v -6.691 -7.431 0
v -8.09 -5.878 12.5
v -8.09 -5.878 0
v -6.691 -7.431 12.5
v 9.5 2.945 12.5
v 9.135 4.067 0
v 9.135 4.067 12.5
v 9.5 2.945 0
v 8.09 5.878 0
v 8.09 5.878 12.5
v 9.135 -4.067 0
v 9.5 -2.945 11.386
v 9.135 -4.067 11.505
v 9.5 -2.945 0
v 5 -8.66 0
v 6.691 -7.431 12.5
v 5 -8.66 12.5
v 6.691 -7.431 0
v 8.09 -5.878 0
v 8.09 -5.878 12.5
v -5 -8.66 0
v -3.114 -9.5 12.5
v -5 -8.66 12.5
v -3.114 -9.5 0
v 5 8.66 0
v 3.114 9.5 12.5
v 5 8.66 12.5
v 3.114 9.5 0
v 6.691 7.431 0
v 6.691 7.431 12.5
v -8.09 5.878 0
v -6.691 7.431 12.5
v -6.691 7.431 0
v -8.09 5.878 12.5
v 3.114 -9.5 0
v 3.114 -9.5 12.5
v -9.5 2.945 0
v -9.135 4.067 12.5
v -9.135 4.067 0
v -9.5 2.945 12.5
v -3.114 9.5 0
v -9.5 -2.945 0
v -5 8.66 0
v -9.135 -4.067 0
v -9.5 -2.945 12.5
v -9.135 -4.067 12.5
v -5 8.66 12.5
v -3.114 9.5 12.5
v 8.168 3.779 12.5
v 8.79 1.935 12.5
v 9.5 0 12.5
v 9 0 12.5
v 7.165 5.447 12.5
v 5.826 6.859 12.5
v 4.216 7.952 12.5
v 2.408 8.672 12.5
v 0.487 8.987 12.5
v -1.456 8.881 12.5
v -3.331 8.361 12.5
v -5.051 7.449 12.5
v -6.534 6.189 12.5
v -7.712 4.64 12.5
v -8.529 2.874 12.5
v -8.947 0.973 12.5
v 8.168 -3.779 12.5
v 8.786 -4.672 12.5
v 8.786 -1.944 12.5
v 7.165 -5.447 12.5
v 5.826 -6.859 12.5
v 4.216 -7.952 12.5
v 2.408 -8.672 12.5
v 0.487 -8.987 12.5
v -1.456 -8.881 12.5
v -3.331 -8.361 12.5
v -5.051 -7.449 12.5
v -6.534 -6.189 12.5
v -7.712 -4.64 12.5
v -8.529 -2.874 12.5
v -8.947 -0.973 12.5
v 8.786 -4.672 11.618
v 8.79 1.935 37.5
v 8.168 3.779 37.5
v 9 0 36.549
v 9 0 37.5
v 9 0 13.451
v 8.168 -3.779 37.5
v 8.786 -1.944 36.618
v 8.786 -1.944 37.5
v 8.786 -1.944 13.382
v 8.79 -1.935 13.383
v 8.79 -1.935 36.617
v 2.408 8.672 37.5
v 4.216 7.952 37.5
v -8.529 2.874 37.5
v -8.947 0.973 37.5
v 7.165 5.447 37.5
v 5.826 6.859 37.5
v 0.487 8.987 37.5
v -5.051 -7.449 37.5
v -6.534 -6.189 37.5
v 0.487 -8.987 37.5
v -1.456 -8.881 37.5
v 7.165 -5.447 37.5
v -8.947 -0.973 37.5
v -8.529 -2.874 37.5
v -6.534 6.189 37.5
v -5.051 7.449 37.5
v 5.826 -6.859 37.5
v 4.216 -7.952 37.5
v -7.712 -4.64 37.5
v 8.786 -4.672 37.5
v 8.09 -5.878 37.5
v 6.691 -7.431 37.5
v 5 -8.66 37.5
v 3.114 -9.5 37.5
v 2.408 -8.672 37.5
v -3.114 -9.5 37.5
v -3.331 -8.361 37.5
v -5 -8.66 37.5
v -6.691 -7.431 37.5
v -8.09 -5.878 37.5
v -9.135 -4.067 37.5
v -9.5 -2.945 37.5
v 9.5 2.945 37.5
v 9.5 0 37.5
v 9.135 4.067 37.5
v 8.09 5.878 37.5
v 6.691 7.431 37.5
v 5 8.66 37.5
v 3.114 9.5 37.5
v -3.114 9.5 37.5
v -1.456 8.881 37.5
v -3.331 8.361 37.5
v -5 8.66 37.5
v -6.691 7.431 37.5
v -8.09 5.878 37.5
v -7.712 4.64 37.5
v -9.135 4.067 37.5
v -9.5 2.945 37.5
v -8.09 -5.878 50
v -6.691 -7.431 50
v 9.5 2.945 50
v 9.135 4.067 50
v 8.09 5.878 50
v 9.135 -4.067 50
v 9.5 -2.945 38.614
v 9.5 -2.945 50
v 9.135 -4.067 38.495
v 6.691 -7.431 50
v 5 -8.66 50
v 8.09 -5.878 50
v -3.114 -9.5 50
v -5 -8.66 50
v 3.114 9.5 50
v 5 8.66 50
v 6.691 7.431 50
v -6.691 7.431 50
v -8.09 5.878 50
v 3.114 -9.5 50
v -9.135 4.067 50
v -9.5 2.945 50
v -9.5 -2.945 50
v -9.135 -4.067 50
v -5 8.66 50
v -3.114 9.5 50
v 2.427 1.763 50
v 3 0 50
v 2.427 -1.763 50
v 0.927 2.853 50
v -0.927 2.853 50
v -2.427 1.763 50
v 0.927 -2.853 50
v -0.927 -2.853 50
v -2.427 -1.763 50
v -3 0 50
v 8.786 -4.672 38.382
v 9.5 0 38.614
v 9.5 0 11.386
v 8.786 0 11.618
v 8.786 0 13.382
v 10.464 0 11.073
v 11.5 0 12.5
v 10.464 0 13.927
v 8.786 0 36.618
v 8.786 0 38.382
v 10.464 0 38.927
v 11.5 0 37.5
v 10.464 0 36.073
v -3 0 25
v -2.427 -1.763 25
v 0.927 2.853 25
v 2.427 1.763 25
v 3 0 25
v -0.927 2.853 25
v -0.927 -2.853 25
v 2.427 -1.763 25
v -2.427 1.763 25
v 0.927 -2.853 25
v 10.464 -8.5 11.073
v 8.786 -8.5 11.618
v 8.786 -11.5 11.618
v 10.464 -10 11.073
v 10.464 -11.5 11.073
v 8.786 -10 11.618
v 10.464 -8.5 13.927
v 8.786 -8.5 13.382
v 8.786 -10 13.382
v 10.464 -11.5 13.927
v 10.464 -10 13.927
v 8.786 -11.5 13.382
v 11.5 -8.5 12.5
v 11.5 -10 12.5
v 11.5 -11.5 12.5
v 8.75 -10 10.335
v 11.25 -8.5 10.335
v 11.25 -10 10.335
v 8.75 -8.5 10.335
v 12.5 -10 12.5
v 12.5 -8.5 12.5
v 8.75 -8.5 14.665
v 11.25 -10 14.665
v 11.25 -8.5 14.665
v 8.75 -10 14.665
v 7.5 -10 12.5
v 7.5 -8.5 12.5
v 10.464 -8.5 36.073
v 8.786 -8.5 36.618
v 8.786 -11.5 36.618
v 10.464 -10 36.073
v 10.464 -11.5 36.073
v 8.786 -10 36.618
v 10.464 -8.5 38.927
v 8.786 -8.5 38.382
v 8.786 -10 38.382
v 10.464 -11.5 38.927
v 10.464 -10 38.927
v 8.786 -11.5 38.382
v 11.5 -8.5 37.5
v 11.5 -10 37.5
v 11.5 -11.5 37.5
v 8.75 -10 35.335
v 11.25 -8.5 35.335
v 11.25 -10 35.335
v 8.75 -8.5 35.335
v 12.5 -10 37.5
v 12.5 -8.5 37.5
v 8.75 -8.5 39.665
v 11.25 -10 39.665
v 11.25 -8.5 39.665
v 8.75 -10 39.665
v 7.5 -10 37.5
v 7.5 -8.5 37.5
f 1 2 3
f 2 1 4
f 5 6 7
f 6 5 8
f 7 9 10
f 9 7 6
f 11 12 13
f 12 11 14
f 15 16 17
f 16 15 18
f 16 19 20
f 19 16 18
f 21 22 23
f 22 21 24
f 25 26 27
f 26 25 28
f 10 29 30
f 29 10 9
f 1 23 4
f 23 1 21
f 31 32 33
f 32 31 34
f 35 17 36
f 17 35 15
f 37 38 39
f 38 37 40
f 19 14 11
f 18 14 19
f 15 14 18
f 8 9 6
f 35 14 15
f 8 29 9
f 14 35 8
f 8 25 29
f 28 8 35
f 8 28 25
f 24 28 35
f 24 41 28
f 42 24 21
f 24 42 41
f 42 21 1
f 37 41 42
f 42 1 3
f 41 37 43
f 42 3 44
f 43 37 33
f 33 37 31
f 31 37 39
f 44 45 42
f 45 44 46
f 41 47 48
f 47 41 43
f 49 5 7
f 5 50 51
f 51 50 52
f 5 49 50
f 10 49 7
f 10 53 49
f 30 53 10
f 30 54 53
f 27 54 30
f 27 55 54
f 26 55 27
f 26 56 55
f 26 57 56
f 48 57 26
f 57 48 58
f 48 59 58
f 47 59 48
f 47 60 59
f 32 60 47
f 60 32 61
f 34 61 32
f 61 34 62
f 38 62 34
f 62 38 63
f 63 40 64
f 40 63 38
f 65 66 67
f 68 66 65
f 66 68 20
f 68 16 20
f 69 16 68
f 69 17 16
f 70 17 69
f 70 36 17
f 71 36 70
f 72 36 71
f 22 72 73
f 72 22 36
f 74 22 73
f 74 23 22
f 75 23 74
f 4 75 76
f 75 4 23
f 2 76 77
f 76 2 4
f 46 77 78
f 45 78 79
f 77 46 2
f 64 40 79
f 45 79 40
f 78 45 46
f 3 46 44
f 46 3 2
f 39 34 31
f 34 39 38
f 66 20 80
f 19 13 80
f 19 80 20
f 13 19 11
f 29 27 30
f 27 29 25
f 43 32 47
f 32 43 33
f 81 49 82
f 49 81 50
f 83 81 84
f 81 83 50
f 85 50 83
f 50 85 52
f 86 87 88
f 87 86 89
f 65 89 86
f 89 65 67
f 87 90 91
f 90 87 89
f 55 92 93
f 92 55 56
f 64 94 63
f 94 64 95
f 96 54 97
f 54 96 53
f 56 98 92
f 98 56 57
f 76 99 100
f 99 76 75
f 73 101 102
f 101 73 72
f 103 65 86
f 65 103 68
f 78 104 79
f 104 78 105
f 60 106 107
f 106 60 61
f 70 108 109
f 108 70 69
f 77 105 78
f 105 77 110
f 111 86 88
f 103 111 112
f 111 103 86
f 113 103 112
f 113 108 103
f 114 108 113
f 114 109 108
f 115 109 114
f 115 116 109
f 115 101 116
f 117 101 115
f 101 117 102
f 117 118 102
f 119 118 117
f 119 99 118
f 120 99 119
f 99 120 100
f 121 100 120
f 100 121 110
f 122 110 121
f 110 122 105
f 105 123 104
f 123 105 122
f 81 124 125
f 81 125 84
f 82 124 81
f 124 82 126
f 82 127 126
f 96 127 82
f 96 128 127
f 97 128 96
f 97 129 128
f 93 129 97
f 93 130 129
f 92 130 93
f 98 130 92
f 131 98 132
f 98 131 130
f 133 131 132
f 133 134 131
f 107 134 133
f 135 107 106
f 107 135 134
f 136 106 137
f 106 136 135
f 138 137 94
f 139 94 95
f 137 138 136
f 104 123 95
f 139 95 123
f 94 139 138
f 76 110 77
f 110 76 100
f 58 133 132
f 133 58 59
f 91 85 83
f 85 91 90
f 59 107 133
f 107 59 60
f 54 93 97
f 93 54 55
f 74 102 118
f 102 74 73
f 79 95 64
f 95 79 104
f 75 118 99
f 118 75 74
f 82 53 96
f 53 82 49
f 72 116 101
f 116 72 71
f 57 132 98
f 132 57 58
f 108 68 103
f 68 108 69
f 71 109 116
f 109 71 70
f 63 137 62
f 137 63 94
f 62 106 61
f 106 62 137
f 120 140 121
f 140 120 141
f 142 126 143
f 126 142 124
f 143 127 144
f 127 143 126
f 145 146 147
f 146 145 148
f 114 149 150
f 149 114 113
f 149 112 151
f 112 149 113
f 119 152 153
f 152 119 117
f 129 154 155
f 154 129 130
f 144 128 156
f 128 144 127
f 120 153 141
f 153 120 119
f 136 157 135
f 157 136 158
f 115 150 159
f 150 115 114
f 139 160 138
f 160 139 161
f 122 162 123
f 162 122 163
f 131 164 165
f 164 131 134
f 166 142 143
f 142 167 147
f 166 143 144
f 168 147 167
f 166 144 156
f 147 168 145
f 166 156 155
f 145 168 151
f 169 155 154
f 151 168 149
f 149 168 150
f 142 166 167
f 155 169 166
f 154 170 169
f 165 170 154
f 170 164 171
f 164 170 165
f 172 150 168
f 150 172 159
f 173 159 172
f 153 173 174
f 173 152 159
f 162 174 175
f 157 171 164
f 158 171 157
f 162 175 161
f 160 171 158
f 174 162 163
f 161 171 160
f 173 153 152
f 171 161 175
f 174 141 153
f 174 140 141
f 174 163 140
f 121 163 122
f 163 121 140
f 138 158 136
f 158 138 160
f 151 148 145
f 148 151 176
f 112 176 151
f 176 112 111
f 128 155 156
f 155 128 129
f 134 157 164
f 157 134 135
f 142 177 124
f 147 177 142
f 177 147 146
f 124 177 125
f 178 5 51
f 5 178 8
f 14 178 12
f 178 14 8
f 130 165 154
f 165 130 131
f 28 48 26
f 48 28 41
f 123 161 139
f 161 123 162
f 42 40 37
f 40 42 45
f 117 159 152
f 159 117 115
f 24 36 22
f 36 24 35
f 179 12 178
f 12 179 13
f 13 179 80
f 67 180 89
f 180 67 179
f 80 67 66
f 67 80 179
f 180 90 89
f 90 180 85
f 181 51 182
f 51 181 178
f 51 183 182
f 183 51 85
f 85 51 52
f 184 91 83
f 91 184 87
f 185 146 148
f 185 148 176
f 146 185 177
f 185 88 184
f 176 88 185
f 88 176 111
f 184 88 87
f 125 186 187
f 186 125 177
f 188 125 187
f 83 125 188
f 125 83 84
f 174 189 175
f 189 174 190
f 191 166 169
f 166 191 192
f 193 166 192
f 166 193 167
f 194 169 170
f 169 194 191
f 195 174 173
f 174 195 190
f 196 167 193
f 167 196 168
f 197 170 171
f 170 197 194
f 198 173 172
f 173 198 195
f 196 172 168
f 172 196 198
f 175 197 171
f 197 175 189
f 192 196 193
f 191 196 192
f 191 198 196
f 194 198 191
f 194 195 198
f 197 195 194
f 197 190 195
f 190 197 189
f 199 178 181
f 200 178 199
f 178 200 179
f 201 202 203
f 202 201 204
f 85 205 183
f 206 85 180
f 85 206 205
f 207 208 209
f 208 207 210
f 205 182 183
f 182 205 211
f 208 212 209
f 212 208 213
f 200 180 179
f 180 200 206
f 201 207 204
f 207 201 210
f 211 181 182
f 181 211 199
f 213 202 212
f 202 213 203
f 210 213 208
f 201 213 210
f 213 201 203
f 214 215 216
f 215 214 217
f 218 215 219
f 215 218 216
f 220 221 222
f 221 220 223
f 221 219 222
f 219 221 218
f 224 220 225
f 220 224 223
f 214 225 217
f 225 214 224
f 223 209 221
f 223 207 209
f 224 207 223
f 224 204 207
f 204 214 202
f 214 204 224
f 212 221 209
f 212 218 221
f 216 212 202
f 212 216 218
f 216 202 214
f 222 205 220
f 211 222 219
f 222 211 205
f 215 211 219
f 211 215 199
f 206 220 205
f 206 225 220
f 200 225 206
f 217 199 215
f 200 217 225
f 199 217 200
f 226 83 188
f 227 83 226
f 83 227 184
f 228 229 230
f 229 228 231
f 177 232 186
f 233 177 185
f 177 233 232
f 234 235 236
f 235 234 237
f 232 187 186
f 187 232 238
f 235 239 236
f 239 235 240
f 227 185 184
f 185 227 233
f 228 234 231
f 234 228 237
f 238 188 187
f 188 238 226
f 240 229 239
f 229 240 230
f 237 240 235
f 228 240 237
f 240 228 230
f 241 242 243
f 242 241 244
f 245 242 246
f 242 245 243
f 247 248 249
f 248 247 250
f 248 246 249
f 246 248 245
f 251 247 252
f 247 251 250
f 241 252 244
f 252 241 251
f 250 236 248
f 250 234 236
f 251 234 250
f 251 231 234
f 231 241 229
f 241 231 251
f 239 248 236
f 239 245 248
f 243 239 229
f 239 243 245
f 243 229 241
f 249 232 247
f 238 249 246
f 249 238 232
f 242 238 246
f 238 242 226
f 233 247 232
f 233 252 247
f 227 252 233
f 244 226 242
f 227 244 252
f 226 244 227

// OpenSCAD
// Parameters
flexible_coupling_length = 50; // Total length of the coupling
flexible_coupling_diameter = 20; // Diameter of the coupling
central_section_diameter = 18; // Diameter of the central section
slit_width = 1; // Width of the slits
slit_depth = 8; // Depth of the slits
hole_diameter = 6; // Diameter of the shaft holes
threaded_hole_diameter = 3; // Diameter of the threaded holes
screw_diameter = 3; // Diameter of the fastening screws
screw_length = 10; // Length of the fastening screws
hex_head_diameter = 5; // Diameter of the hexagonal socket head

// Flexible Coupling Body
module flexible_coupling_body() {
    difference() {
        // Main cylindrical body with a narrower central section
        union() {
            cylinder(flexible_coupling_length / 4, flexible_coupling_diameter / 2, flexible_coupling_diameter / 2);
            translate([0, 0, flexible_coupling_length / 4])
                cylinder(flexible_coupling_length / 2, central_section_diameter / 2, central_section_diameter / 2);
            translate([0, 0, flexible_coupling_length * 3 / 4])
                cylinder(flexible_coupling_length / 4, flexible_coupling_diameter / 2, flexible_coupling_diameter / 2);
        }
        
        // Shaft holes
        translate([0, 0, flexible_coupling_length / 2])
            cylinder(flexible_coupling_length, hole_diameter / 2, hole_diameter / 2);
        
        // Slits for flexibility
        for (i = [0 : 90 : 270]) {
            rotate([0, 0, i])
                for (j = [flexible_coupling_length / 6, flexible_coupling_length / 2, flexible_coupling_length * 5 / 6]) {
                    translate([flexible_coupling_diameter / 2, 0, j])
                        cube([slit_width, slit_depth, flexible_coupling_length / 3], center = true);
                }
        }
        
        // Threaded holes for screws
        for (i = [flexible_coupling_length / 4, flexible_coupling_length * 3 / 4]) {
            translate([flexible_coupling_diameter / 2, 0, i])
                rotate([90, 0, 0])
                    cylinder(flexible_coupling_length, threaded_hole_diameter / 2, threaded_hole_diameter / 2);
        }
    }
}

// Fastening Screw with Hexagonal Socket Head
module fastening_screw() {
    union() {
        cylinder(screw_length, screw_diameter / 2, screw_diameter / 2);
        translate([0, 0, screw_length])
            cylinder(screw_diameter / 2, screw_diameter / 2, screw_diameter / 2);
        
        // Hexagonal socket head
        translate([0, 0, screw_length - screw_diameter / 2])
            cylinder(screw_diameter / 2, hex_head_diameter / 2, hex_head_diameter / 2, $fn=6);
    }
}

// Assembly
module assembly() {
    // Flexible coupling body
    flexible_coupling_body();
    
    // Fastening screws
    for (i = [flexible_coupling_length / 4, flexible_coupling_length * 3 / 4]) {
        translate([flexible_coupling_diameter / 2, 0, i])
            rotate([90, 0, 0])
                fastening_screw();
    }
}

// Render the assembly
assembly();
